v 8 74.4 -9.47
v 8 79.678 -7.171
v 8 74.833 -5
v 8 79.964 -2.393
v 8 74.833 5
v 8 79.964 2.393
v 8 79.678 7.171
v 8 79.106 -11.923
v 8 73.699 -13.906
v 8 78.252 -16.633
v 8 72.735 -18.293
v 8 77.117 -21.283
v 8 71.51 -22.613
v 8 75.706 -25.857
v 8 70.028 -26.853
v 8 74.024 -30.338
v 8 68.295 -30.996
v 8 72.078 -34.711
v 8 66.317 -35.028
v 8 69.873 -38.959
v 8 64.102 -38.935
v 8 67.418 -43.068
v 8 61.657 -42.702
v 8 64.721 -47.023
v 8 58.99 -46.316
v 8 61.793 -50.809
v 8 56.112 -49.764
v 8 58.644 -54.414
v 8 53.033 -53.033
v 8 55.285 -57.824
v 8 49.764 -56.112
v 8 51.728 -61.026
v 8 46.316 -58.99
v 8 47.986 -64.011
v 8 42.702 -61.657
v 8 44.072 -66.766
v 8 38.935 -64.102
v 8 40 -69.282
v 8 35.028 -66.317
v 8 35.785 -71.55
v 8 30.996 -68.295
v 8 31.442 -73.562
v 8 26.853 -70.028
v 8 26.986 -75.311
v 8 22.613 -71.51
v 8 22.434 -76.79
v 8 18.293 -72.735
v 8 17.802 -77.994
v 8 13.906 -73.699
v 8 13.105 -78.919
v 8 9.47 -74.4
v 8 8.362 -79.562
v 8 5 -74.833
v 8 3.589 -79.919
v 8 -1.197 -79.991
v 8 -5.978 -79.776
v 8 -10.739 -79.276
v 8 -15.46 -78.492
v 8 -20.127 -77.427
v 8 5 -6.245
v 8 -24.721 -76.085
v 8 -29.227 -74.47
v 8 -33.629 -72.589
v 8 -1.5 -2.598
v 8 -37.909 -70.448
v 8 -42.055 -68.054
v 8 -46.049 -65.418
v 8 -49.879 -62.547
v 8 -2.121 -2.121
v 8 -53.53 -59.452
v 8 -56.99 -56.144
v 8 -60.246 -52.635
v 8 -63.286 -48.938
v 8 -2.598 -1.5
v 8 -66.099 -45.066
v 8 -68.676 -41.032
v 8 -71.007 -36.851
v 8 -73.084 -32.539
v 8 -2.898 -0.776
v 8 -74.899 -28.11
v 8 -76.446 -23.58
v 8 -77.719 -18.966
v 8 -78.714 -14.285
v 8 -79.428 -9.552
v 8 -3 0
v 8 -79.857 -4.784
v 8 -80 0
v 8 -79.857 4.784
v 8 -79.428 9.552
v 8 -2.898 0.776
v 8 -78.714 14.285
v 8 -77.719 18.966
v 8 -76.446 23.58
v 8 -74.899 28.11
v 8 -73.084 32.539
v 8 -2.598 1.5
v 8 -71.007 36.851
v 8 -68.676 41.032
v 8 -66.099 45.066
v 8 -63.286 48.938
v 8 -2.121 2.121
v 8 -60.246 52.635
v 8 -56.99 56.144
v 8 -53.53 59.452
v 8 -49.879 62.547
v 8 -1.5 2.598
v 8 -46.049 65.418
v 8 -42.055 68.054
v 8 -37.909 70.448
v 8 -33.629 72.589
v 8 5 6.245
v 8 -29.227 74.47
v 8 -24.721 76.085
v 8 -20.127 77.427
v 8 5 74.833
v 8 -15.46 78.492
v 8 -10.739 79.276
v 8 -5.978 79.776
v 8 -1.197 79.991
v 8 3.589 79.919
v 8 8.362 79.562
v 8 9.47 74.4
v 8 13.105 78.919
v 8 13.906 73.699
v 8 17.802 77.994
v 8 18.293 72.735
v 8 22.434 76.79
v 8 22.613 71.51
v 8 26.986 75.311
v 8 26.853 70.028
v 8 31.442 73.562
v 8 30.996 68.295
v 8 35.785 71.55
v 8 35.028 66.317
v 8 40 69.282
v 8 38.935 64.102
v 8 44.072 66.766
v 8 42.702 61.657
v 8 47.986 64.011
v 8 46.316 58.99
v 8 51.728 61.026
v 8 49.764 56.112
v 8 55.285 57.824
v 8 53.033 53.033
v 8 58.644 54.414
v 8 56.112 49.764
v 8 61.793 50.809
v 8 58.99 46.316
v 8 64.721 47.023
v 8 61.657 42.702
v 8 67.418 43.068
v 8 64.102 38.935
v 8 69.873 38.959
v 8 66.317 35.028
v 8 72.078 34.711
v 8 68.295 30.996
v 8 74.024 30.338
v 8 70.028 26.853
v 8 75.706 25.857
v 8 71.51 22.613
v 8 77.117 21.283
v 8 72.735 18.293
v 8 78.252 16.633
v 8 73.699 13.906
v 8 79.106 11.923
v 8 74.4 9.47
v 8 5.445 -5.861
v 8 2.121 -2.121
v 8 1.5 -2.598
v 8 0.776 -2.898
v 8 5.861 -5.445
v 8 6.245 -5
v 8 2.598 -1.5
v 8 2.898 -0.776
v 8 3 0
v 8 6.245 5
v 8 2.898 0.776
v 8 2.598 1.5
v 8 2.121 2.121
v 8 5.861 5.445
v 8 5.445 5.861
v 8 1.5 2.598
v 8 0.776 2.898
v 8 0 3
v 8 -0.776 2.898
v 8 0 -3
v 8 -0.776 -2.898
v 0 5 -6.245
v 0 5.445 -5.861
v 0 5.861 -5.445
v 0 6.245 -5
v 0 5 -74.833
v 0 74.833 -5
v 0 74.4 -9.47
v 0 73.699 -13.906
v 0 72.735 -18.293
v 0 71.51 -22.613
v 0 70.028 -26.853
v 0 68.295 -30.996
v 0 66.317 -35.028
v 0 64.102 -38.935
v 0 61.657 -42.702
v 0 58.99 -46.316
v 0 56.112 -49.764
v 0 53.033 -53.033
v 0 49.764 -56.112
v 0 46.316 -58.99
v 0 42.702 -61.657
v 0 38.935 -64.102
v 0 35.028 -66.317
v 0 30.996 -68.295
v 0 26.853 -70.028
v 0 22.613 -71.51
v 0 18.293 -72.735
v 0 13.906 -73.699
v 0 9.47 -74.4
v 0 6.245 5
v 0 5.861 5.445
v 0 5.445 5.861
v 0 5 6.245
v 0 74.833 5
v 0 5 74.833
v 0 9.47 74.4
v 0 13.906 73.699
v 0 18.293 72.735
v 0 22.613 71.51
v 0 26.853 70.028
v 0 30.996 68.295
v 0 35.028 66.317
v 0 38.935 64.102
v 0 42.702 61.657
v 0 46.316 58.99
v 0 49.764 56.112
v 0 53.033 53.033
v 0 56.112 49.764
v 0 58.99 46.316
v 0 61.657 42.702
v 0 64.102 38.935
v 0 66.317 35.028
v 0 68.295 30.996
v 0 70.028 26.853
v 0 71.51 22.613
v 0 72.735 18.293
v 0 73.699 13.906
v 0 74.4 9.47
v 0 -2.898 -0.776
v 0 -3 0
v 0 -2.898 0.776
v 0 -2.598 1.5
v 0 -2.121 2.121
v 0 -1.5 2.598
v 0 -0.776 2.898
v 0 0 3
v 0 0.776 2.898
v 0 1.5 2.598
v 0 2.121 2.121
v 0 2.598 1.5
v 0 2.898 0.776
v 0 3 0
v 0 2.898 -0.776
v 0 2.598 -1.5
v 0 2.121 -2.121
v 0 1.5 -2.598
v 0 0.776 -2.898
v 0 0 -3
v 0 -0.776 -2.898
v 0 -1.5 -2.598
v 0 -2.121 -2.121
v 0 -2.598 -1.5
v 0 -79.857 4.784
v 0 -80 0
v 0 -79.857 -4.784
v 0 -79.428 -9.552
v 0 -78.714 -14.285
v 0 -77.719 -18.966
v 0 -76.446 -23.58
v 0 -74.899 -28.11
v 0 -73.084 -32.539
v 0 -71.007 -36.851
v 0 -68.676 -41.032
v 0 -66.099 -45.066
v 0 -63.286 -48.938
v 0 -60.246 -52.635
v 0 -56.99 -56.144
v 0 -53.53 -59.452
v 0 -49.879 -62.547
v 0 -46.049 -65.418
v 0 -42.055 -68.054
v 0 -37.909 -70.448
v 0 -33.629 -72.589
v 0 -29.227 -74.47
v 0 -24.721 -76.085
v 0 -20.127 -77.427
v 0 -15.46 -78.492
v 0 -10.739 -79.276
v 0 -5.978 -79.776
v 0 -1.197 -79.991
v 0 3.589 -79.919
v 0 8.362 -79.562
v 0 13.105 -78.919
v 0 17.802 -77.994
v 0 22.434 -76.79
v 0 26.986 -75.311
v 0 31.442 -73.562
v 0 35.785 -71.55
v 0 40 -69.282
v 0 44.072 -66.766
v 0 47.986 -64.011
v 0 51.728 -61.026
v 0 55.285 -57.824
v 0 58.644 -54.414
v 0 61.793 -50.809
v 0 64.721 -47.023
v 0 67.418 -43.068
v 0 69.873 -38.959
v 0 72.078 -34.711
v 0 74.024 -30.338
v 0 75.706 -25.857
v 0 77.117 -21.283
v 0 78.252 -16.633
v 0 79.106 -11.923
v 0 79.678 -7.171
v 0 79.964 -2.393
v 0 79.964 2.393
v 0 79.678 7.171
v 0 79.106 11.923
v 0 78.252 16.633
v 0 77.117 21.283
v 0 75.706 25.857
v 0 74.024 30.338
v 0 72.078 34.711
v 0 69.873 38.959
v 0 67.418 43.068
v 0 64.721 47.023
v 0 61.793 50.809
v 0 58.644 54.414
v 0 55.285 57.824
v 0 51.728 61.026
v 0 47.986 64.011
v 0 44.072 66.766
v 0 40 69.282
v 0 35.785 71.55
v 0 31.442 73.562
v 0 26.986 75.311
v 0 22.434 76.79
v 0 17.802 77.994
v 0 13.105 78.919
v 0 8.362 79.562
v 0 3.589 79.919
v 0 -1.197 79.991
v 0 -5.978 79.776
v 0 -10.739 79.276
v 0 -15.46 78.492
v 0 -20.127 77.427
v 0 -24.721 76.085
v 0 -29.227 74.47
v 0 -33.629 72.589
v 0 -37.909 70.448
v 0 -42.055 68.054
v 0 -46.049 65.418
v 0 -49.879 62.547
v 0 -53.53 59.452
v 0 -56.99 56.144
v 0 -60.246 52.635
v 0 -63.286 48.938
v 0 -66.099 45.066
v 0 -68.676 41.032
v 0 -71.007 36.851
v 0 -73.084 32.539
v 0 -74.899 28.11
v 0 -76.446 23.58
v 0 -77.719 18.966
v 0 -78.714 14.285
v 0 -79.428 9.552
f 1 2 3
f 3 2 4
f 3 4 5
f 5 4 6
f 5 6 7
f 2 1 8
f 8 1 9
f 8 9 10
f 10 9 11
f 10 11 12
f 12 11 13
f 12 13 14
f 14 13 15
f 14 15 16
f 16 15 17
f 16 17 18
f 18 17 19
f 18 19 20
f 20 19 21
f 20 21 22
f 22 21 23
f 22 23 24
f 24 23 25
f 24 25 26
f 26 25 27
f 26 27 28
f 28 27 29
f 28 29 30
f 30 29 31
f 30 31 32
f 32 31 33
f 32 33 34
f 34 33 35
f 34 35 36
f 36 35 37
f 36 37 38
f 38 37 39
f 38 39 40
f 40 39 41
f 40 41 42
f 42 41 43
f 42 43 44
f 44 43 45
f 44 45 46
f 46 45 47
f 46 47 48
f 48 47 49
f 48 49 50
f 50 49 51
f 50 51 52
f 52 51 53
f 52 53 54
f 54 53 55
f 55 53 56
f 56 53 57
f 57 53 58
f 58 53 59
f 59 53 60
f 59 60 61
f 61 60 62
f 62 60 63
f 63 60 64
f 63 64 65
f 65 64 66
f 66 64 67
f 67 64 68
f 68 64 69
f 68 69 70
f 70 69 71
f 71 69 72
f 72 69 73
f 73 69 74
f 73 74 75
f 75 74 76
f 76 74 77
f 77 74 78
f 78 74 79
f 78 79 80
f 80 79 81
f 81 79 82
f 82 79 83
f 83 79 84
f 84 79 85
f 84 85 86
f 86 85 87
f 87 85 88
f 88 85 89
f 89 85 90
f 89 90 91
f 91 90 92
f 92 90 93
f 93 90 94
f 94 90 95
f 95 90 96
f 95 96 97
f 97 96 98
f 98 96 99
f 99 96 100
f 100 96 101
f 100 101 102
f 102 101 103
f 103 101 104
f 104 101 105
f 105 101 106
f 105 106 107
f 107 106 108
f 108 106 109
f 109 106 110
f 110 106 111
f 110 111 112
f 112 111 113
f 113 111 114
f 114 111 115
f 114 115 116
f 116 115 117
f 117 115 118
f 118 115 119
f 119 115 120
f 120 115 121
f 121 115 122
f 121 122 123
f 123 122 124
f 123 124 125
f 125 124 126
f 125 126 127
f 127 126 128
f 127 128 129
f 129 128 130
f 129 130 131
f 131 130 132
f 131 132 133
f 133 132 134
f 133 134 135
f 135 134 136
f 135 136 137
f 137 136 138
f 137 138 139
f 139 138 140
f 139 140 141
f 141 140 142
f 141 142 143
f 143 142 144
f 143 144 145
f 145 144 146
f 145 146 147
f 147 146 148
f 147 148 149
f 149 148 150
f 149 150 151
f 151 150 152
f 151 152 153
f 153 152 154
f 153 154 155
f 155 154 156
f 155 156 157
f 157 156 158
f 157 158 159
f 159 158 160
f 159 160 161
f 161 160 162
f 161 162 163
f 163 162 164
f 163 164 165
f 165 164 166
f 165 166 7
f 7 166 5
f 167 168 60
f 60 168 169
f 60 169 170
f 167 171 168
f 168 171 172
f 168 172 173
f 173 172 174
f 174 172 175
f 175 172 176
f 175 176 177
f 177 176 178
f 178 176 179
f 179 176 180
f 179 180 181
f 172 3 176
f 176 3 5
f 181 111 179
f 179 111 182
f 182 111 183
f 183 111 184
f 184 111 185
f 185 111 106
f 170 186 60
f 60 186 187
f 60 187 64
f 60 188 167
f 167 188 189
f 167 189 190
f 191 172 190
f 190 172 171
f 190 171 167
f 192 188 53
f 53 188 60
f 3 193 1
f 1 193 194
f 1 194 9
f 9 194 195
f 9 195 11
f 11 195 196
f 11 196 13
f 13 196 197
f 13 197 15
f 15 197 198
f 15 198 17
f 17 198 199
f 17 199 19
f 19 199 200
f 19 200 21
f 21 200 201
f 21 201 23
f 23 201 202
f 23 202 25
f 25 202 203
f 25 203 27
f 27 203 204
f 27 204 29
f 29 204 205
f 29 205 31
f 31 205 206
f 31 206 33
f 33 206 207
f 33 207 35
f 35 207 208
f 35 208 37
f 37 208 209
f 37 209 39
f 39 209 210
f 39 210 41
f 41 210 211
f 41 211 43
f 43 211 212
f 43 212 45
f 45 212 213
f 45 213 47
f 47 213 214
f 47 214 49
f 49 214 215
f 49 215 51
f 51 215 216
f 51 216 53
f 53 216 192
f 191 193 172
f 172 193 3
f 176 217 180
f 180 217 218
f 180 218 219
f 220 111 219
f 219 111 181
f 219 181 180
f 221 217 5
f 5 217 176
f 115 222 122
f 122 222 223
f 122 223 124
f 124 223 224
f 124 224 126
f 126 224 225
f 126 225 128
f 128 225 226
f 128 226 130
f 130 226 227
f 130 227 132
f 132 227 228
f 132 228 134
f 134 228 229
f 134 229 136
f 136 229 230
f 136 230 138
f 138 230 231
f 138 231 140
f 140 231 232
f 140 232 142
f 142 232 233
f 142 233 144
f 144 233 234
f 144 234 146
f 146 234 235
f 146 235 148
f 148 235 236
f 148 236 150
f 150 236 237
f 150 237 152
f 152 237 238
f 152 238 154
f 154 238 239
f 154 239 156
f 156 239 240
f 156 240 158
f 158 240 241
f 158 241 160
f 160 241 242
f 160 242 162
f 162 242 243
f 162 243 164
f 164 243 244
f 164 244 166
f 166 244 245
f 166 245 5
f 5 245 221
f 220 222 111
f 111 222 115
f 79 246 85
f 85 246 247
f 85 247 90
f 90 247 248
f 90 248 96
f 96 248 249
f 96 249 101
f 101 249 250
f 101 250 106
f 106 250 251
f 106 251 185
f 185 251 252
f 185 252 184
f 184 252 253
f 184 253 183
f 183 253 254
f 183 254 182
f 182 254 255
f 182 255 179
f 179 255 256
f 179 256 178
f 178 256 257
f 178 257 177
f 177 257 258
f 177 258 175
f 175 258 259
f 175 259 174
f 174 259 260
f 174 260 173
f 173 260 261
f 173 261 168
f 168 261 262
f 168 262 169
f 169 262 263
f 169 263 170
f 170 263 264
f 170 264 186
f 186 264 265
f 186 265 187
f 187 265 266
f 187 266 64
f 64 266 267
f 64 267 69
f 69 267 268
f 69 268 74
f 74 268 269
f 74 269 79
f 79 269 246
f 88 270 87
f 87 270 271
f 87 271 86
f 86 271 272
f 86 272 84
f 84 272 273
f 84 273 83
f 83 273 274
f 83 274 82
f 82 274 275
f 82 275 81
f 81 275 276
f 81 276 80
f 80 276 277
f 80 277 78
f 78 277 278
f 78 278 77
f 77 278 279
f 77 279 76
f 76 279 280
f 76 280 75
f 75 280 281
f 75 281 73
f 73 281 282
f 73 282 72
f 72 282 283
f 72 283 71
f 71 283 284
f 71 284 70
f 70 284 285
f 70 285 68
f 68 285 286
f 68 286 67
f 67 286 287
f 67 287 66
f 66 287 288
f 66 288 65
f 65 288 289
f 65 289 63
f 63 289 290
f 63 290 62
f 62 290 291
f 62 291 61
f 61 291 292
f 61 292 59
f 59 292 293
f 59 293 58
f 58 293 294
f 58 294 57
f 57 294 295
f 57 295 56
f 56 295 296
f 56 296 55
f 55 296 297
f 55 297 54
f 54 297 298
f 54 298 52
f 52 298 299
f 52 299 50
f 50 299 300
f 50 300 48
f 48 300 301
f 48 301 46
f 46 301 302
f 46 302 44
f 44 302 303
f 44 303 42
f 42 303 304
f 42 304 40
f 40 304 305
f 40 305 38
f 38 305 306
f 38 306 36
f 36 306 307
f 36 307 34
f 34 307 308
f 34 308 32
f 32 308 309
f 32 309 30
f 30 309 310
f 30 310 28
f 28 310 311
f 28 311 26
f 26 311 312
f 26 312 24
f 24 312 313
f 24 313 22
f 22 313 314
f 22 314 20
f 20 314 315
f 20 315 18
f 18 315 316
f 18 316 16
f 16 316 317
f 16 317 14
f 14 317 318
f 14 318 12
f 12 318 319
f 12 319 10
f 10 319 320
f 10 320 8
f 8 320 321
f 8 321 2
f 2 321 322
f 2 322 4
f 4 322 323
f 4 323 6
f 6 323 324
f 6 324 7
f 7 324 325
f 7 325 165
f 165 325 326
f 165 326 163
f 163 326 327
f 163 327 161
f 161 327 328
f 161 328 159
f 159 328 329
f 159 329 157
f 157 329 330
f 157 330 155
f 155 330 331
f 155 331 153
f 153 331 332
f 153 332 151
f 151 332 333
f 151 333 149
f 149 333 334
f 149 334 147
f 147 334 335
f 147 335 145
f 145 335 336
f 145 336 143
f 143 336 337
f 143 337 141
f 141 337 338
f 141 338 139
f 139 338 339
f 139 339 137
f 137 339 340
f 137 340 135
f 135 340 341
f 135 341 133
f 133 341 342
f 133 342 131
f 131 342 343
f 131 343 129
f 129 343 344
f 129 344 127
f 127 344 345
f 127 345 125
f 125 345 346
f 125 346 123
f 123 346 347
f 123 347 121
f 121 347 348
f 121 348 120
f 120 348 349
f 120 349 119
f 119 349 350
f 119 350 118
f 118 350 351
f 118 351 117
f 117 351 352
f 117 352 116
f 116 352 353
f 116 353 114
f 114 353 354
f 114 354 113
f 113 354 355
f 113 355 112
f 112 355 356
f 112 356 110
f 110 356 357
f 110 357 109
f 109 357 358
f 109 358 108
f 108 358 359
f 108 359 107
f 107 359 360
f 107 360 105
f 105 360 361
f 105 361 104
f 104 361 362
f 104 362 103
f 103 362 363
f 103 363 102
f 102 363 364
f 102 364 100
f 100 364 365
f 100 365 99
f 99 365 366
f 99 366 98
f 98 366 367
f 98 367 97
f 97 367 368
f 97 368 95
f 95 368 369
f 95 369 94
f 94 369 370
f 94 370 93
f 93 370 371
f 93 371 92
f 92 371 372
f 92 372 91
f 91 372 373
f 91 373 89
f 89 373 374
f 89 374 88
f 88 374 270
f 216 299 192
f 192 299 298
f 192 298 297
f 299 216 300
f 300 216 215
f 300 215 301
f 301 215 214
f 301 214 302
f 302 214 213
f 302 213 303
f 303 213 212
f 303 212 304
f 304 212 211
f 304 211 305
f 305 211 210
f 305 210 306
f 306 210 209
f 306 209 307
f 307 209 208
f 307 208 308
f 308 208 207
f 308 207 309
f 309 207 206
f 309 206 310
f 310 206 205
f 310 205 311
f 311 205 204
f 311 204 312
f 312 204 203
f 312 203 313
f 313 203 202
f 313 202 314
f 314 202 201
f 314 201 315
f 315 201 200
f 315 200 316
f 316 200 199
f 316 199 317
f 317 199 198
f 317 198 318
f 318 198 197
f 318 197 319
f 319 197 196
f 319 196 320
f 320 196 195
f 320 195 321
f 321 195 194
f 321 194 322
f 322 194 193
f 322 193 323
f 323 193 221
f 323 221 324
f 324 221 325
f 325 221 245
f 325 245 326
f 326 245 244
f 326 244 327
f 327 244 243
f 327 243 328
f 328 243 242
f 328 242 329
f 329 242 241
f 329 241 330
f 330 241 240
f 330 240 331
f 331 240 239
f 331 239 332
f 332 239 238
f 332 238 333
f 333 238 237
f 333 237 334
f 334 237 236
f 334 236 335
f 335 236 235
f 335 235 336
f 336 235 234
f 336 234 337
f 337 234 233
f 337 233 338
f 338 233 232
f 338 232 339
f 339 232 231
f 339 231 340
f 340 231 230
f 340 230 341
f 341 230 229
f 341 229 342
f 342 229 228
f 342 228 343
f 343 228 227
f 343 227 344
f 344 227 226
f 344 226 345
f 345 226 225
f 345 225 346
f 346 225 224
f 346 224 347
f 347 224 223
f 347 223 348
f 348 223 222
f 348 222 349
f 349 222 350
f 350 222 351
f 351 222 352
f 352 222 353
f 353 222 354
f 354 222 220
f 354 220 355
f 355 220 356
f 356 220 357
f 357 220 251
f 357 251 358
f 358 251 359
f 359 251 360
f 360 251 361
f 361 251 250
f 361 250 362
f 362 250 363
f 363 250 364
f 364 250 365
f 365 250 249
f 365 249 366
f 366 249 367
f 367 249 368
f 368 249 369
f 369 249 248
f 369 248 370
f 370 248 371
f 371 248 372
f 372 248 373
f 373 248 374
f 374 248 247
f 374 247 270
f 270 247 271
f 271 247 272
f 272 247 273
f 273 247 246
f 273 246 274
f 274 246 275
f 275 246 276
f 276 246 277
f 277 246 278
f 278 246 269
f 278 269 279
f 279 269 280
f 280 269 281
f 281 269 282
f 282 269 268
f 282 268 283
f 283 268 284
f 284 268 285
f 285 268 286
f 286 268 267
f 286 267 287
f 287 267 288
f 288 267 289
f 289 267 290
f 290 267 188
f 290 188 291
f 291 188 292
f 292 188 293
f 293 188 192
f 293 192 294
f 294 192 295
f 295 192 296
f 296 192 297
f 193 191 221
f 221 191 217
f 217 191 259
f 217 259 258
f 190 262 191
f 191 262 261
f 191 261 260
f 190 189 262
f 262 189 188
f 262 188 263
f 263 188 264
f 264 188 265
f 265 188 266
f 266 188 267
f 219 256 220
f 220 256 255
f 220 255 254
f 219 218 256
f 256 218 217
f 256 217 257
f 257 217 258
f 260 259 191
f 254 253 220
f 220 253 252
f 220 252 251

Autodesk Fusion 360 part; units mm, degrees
sketch "Sketch1" plane through (0, 0, 0) normal (1, 0, 0) x (0, 1, 0)
  circle A0 centre (0, 0) radius 80
  dimension "d1" = 160
extrude "Extrude1" add sketch "Sketch1" along normal blind 3 makes body 1
copy_body "Body->Comp1" bodies 1 removing the originals makes body 2 in component "Component"
sketch "Sketch2" plane through (3, 0, 0) normal (1, 0, 0) x (0, 1, 0)
  circle A0 centre (0, 0) radius 80
  circle A1 centre (0, 0) radius 3
  dimension "d4" = 6
extrude "Extrude1'" cut sketch "Sketch2" against normal blind 10 contours A1 bodies 2 in component "Component"
sketch "Sketch3" plane through (3, 0, 0) normal (1, 0, 0) x (0, 1, 0)
  circle A0 centre (0, 0) radius 3
  circle A1 centre (0, 0) radius 80
  circle A2 centre (0, 0) radius 75
  circle A3 centre (0, 0) radius 8
  line L0 (-5, 77.486) -> (5, 77.486)
  line L1 (5, 77.486) -> (5, -77.486)
  line L2 (5, -77.486) -> (-5, -77.486)
  line L3 (-5, -77.486) -> (-5, 77.486)
  line L4 (-5, 77.486) -> (5, -77.486) construction
  line L5 (5, 77.486) -> (-5, -77.486) construction
  line L6 (-77.0993, 5) -> (77.0993, 5)
  line L7 (77.0993, 5) -> (77.0993, -5)
  line L8 (77.0993, -5) -> (-77.0993, -5)
  line L9 (-77.0993, -5) -> (-77.0993, 5)
  line L10 (-77.0993, 5) -> (77.0993, -5) construction
  line L11 (77.0993, 5) -> (-77.0993, -5) construction
  dimension "d7" = 150
  dimension "d8" = 16
  dimension "d9" = 10
  dimension "d10" = 10
extrude "Extrude2" cut sketch "Sketch3" against normal blind 40 contours A2 A3 L1 L6 | A2 A3 L1 L8 bodies 2 in component "Component"
extrude "Extrude3" add 1 faces at (3, -2.6006, 53.0241) along direction (1, 0, 0) blind 5 on bodies 2 bodies 2 in component "Component"
component "Component" placed x (1, 0, 0) y (0, 1, 0) z (0, 0, 1) at (0, 0, 0)
